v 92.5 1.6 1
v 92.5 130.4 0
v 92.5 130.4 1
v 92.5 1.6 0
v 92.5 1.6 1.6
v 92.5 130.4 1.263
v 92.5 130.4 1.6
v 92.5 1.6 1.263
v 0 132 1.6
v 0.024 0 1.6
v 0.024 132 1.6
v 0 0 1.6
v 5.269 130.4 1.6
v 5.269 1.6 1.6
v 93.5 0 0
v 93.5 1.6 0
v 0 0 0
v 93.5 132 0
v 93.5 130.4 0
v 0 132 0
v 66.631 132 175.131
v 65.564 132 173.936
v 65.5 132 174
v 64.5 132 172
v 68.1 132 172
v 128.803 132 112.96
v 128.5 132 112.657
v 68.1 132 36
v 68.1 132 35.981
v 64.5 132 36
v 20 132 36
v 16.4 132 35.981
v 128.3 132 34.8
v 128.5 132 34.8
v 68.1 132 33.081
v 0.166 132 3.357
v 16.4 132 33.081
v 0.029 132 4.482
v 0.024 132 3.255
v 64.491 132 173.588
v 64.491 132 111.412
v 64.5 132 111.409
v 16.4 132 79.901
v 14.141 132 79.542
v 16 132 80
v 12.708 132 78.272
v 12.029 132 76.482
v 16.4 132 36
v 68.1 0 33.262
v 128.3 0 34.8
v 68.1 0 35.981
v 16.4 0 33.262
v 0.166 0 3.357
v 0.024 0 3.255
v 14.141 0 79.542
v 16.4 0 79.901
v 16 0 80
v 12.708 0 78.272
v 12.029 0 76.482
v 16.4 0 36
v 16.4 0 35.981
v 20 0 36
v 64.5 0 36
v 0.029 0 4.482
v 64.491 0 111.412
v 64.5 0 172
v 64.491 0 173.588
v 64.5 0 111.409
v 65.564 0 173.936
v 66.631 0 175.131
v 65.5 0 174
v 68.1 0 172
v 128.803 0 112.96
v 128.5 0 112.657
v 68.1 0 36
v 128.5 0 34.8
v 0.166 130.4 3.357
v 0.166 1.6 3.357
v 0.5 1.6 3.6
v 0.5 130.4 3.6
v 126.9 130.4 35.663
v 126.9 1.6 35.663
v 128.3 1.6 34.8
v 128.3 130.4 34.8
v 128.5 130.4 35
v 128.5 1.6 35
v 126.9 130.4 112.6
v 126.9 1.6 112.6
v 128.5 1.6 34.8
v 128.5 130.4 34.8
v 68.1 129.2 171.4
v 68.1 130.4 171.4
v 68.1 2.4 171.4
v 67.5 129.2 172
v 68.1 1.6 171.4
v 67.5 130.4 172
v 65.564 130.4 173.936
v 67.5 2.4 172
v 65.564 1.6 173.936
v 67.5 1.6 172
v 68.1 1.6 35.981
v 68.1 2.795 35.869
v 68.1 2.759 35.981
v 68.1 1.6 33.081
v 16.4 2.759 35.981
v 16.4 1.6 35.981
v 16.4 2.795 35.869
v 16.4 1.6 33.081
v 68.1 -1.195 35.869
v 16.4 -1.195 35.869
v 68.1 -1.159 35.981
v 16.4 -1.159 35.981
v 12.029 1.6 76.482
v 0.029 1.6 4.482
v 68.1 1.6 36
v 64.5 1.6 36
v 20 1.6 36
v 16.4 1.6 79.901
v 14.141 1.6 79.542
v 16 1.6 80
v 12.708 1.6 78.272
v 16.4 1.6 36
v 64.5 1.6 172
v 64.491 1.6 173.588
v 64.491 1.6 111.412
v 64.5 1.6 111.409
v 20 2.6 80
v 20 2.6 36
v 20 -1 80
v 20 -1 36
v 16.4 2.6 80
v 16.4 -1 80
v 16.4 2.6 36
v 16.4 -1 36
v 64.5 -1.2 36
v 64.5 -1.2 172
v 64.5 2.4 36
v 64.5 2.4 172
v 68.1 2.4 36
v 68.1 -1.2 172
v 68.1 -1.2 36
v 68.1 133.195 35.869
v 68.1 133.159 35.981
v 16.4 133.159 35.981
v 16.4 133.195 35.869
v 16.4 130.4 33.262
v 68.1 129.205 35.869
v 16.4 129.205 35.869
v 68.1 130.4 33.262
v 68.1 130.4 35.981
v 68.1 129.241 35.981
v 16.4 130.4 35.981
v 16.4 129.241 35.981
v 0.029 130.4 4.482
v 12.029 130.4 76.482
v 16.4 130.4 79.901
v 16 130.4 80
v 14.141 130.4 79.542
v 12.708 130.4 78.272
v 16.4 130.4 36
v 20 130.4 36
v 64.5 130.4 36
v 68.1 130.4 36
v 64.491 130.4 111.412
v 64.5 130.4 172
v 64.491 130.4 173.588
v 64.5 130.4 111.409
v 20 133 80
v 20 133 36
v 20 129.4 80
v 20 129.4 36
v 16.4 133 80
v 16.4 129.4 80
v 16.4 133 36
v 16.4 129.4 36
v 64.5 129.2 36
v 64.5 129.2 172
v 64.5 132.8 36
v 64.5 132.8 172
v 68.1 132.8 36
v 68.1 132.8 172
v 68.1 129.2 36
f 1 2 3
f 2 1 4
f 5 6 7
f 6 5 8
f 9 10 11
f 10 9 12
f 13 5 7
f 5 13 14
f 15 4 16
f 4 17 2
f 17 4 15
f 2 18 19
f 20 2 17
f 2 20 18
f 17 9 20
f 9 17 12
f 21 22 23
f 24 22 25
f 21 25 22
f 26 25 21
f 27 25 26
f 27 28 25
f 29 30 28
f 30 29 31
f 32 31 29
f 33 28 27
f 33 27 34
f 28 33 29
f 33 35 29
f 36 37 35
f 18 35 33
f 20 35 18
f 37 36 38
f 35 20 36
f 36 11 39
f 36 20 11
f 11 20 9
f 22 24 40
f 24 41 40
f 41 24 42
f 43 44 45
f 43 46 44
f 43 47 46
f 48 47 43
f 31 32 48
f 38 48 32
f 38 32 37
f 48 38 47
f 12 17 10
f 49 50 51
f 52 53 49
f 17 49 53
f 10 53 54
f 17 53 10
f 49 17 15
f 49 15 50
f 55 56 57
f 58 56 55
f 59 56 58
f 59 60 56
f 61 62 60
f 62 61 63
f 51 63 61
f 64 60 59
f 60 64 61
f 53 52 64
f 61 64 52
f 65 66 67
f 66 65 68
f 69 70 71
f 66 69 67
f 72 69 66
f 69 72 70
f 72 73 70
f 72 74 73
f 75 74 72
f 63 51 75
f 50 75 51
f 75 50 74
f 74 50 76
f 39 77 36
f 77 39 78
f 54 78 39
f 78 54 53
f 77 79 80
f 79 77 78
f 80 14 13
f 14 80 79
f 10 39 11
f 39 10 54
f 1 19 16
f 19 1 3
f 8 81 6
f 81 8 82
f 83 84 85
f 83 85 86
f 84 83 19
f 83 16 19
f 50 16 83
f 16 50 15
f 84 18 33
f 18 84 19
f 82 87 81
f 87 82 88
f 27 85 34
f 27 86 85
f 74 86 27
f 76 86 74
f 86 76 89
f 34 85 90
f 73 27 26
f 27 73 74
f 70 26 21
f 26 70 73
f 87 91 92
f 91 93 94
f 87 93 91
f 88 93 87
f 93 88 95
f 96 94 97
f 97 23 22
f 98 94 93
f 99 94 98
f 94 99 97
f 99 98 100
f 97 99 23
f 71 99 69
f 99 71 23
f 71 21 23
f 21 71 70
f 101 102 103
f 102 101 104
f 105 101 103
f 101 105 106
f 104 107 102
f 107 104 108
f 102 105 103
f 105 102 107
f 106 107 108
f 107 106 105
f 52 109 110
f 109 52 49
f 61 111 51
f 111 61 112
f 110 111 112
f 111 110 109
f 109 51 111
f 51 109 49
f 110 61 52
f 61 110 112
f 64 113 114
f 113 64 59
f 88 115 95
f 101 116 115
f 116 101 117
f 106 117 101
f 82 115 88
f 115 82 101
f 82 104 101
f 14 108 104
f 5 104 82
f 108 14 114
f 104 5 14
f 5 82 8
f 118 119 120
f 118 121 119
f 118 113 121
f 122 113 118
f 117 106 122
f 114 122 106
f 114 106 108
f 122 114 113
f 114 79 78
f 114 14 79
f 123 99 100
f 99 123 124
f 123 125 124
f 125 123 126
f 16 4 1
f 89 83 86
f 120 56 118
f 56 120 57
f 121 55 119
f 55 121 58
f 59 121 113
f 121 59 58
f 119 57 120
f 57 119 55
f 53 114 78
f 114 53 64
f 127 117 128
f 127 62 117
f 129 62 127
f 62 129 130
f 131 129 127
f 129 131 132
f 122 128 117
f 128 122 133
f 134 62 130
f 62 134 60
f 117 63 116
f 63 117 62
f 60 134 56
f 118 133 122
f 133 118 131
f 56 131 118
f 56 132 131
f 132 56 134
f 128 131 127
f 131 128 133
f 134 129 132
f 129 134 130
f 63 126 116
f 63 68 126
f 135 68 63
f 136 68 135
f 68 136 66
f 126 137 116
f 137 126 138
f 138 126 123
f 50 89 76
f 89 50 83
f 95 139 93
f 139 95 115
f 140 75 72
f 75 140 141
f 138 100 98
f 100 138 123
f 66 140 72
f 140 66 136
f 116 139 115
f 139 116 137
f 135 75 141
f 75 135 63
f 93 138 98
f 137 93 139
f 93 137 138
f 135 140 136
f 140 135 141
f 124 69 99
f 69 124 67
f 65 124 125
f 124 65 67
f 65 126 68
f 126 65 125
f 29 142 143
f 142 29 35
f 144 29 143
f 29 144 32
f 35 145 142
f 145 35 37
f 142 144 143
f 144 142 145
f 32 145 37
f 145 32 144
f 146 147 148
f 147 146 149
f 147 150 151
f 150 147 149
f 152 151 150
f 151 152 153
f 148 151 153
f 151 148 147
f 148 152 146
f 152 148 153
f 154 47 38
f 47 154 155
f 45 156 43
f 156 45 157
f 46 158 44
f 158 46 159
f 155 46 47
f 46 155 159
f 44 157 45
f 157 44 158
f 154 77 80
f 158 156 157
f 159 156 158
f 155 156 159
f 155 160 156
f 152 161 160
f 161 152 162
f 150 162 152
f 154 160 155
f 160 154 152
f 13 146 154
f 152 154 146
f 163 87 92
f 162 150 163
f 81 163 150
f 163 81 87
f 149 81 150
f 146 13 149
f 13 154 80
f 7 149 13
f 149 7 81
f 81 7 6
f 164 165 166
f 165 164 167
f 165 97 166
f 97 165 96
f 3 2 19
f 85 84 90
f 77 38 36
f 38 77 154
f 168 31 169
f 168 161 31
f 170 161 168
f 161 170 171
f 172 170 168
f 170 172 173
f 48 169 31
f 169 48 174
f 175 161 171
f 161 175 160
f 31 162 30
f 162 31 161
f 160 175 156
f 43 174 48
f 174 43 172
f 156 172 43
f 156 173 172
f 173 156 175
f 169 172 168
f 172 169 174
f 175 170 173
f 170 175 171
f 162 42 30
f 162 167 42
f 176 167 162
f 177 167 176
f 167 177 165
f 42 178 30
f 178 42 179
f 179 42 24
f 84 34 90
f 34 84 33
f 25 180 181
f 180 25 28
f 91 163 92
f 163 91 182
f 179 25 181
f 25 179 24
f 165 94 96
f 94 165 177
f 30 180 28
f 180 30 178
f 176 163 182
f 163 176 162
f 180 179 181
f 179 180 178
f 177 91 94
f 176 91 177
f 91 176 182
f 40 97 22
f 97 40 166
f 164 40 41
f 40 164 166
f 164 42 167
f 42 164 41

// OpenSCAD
//
// Table Catch
// Original Design by Sean Wesenberg
// MIT License 2022
// 
// keywords
// 
//         above (arm)
// h        ___
// e        | table  
// i front  |_______  back
// g        |      /   
// h  angle  \____/  angle
// t          under
//         l e n g t h
// 
// x = height
// y = width
// x = length 
// translate = pos(ition)
// size = dim(ension)
// 

// PARAMS - user adjustable
table_thickness = 44.5; // default 44.75 butcher block
bin_width = 132; // default 132mm which is 16x LEGO studs
bin_arm_height = 20;
bin_arm_length = 80;    // default 90 
bin_front_length = 36;    // default 36 
bin_under_height = 35;   // default 35
bin_under_length = 78;    // default 78

// PARAMS - adjust at your own risk 
bin_wall_thickness = 1.6; // default 1.2mm - 3x 0.40mm nozzle
edge_padding = 3.6; // default 2.4
bin_front_extra_height = 30; // below the table height

// CALCULATIONS based on params
bin_front_height_without_extra = bin_arm_height + table_thickness;
bin_front_height_total = bin_arm_height + table_thickness + bin_front_extra_height;

bin_front_hypotenuse = sqrt(pow(bin_under_height, 2) + pow(bin_under_height, 2));
bin_back_hypotenuse = sqrt(pow(bin_under_height + bin_front_extra_height, 2) + pow(bin_under_height + bin_front_extra_height, 2));

bin_front_angle = 45; // don't do less than 30 degrees
bin_back_angle = 45; // don't do less than 30 degrees

draw_middle();
draw_side(bin_wall_thickness); // right
draw_side(bin_width); // left

module draw_middle() {
  // front face
  cube([bin_front_height_total - 2, bin_width, bin_wall_thickness]);
  // front padding / brace
  rotate(a=[270, 270, 0]) 
    right_triangle(edge_padding, edge_padding * 2, .5, bin_width);

  // front angle
  translate([bin_front_height_total - 1, 0, 0]) 
    rotate(a=[0, -bin_front_angle, 0]) 
      cube([bin_front_hypotenuse, bin_width, bin_wall_thickness]);

  // bottom 
  translate([bin_under_height + bin_front_height_total - 1, 0, bin_under_height]) 
    rotate(a=[0, -90, 0]) 
      cube([bin_under_length, bin_width, bin_wall_thickness]);

  // back angle
  translate([bin_front_height_without_extra + 1, 0, bin_under_height + bin_front_extra_height + bin_under_length + bin_under_height - 4]) 
    rotate(a=[0, bin_back_angle, 0]) 
      cube([bin_back_hypotenuse - 4, bin_width, bin_wall_thickness]);

}

// SIDE FUNCTION
// y_move is the movement along the y_axis to translate the shapes, typically this is just the width of the bin
module draw_side(y_pos) {
  draw_arm(y_pos);
  draw_arm_padding(y_pos);
  draw_front_side(y_pos);
  draw_front_side_padding(y_pos);
  draw_front_extra(y_pos);
  draw_front_angle(y_pos);
  draw_bottom_side(y_pos);
  draw_bottom_side_padding(y_pos);
  draw_back_angle(y_pos);
}

module draw_arm(y_pos) {
  position = [
    bin_arm_height, // x
    y_pos,          // y
    0               // z
  ];
  translate(position)
    rotate(a=[90, -90, 0])
      right_triangle(bin_arm_length, bin_arm_height, 4, bin_wall_thickness);
}
module draw_arm_padding(y_pos) {
  position = [
    bin_arm_height - edge_padding,                      // x
    y_pos - edge_padding / 2 - bin_wall_thickness / 2,  // y
    bin_front_length                                    // z
  ];
  size = [
    edge_padding,                     // height - x
    edge_padding,                     // width - y
    bin_arm_length - bin_front_length // length - z
  ];
  translate(position)
    cube(size);
}

module draw_front_side(y_pos) {
  position = [
    bin_arm_height - 1,         // x
    y_pos - bin_wall_thickness, // y
    0                           // z
  ];
  size = [
    table_thickness,        // height - x
    bin_wall_thickness,     // width - y
    bin_front_length        // length - z
  ];
  translate(position) 
    cube(size);
}

module draw_front_side_padding(y_pos) {
  inner_pad_position = [
    bin_arm_height - edge_padding,  // x
    y_pos - 0.2,                    // y
    bin_front_length                // z
  ];
  translate(inner_pad_position)
    rotate(a=[0, 90, 0]) 
      right_triangle(3, 1.4, 0.1, table_thickness + edge_padding * 2);
  outer_pad_position = [
    bin_arm_height + table_thickness + edge_padding,  // x
    y_pos - bin_wall_thickness + 1.2,                 // y
    bin_front_length                                  // z
  ];
  translate(outer_pad_position)
    rotate(a=[0, 90, 180]) 
      right_triangle(5, 2.4, 0.1, table_thickness + edge_padding * 2);
}

module draw_front_extra(y_pos) {
  position = [
    bin_arm_height + table_thickness - 1, // x
    y_pos - bin_wall_thickness,           // y
    0
  ];
  size = [
    bin_front_extra_height, // height - x
    bin_wall_thickness,     // width - y
    bin_front_length        // length - z
  ];
  translate(position) 
    cube(size);
}

module draw_front_angle(y_pos) {
  position = [
    bin_front_height_total - 1.2,   // x
    y_pos,                        // y
    bin_under_height              // z
  ];
  translate(position) 
    rotate(a=[90, 90, 0]) 
      right_triangle(bin_under_height, bin_under_height, 0.1, bin_wall_thickness);
}

module draw_bottom_side(y_pos) {
  position = [
    bin_front_height_without_extra, // x
    y_pos,                          // y
    bin_front_length - 1.2                // z
  ];
  size = [
    bin_front_extra_height + bin_under_height - 1,  // height
    bin_under_length,                               // length
    bin_wall_thickness                              // width 
  ];
  translate(position) 
    rotate(a=[90, 0, 0]) 
      cube(size);
}

module draw_bottom_side_padding(y_pos) {
  position = [
    bin_front_height_without_extra,     // x
    y_pos - bin_wall_thickness / 2 - 2, // y
    bin_front_length                    // z
  ];
  size = [
    edge_padding, 
    edge_padding,
    bin_under_length + bin_under_height + bin_front_extra_height - 7
  ];
  translate(position)
    cube(size);
}

module draw_back_angle(y_pos) {
  position = [
    bin_front_height_without_extra - 0.2,     // x
    y_pos,                                    // y
    bin_under_height + bin_under_length - 2
  ];
  translate(position)  // z
    rotate(a=[90, 0, 0]) 
      right_triangle(
        bin_under_height + bin_front_extra_height - 2, 
        bin_under_height + bin_front_extra_height - 2, 
        1, bin_wall_thickness);
}

// community module
module right_triangle(side1, side2, corner_radius, triangle_height) {
  translate([corner_radius,corner_radius,0]) {  
    hull(){  
    cylinder(r=corner_radius,h=triangle_height);
      translate([side1 - corner_radius * 2,0,0])cylinder(r=corner_radius,h=triangle_height);
          translate([0,side2 - corner_radius * 2,0])cylinder(r=corner_radius,h=triangle_height);  
    }
  }
}
